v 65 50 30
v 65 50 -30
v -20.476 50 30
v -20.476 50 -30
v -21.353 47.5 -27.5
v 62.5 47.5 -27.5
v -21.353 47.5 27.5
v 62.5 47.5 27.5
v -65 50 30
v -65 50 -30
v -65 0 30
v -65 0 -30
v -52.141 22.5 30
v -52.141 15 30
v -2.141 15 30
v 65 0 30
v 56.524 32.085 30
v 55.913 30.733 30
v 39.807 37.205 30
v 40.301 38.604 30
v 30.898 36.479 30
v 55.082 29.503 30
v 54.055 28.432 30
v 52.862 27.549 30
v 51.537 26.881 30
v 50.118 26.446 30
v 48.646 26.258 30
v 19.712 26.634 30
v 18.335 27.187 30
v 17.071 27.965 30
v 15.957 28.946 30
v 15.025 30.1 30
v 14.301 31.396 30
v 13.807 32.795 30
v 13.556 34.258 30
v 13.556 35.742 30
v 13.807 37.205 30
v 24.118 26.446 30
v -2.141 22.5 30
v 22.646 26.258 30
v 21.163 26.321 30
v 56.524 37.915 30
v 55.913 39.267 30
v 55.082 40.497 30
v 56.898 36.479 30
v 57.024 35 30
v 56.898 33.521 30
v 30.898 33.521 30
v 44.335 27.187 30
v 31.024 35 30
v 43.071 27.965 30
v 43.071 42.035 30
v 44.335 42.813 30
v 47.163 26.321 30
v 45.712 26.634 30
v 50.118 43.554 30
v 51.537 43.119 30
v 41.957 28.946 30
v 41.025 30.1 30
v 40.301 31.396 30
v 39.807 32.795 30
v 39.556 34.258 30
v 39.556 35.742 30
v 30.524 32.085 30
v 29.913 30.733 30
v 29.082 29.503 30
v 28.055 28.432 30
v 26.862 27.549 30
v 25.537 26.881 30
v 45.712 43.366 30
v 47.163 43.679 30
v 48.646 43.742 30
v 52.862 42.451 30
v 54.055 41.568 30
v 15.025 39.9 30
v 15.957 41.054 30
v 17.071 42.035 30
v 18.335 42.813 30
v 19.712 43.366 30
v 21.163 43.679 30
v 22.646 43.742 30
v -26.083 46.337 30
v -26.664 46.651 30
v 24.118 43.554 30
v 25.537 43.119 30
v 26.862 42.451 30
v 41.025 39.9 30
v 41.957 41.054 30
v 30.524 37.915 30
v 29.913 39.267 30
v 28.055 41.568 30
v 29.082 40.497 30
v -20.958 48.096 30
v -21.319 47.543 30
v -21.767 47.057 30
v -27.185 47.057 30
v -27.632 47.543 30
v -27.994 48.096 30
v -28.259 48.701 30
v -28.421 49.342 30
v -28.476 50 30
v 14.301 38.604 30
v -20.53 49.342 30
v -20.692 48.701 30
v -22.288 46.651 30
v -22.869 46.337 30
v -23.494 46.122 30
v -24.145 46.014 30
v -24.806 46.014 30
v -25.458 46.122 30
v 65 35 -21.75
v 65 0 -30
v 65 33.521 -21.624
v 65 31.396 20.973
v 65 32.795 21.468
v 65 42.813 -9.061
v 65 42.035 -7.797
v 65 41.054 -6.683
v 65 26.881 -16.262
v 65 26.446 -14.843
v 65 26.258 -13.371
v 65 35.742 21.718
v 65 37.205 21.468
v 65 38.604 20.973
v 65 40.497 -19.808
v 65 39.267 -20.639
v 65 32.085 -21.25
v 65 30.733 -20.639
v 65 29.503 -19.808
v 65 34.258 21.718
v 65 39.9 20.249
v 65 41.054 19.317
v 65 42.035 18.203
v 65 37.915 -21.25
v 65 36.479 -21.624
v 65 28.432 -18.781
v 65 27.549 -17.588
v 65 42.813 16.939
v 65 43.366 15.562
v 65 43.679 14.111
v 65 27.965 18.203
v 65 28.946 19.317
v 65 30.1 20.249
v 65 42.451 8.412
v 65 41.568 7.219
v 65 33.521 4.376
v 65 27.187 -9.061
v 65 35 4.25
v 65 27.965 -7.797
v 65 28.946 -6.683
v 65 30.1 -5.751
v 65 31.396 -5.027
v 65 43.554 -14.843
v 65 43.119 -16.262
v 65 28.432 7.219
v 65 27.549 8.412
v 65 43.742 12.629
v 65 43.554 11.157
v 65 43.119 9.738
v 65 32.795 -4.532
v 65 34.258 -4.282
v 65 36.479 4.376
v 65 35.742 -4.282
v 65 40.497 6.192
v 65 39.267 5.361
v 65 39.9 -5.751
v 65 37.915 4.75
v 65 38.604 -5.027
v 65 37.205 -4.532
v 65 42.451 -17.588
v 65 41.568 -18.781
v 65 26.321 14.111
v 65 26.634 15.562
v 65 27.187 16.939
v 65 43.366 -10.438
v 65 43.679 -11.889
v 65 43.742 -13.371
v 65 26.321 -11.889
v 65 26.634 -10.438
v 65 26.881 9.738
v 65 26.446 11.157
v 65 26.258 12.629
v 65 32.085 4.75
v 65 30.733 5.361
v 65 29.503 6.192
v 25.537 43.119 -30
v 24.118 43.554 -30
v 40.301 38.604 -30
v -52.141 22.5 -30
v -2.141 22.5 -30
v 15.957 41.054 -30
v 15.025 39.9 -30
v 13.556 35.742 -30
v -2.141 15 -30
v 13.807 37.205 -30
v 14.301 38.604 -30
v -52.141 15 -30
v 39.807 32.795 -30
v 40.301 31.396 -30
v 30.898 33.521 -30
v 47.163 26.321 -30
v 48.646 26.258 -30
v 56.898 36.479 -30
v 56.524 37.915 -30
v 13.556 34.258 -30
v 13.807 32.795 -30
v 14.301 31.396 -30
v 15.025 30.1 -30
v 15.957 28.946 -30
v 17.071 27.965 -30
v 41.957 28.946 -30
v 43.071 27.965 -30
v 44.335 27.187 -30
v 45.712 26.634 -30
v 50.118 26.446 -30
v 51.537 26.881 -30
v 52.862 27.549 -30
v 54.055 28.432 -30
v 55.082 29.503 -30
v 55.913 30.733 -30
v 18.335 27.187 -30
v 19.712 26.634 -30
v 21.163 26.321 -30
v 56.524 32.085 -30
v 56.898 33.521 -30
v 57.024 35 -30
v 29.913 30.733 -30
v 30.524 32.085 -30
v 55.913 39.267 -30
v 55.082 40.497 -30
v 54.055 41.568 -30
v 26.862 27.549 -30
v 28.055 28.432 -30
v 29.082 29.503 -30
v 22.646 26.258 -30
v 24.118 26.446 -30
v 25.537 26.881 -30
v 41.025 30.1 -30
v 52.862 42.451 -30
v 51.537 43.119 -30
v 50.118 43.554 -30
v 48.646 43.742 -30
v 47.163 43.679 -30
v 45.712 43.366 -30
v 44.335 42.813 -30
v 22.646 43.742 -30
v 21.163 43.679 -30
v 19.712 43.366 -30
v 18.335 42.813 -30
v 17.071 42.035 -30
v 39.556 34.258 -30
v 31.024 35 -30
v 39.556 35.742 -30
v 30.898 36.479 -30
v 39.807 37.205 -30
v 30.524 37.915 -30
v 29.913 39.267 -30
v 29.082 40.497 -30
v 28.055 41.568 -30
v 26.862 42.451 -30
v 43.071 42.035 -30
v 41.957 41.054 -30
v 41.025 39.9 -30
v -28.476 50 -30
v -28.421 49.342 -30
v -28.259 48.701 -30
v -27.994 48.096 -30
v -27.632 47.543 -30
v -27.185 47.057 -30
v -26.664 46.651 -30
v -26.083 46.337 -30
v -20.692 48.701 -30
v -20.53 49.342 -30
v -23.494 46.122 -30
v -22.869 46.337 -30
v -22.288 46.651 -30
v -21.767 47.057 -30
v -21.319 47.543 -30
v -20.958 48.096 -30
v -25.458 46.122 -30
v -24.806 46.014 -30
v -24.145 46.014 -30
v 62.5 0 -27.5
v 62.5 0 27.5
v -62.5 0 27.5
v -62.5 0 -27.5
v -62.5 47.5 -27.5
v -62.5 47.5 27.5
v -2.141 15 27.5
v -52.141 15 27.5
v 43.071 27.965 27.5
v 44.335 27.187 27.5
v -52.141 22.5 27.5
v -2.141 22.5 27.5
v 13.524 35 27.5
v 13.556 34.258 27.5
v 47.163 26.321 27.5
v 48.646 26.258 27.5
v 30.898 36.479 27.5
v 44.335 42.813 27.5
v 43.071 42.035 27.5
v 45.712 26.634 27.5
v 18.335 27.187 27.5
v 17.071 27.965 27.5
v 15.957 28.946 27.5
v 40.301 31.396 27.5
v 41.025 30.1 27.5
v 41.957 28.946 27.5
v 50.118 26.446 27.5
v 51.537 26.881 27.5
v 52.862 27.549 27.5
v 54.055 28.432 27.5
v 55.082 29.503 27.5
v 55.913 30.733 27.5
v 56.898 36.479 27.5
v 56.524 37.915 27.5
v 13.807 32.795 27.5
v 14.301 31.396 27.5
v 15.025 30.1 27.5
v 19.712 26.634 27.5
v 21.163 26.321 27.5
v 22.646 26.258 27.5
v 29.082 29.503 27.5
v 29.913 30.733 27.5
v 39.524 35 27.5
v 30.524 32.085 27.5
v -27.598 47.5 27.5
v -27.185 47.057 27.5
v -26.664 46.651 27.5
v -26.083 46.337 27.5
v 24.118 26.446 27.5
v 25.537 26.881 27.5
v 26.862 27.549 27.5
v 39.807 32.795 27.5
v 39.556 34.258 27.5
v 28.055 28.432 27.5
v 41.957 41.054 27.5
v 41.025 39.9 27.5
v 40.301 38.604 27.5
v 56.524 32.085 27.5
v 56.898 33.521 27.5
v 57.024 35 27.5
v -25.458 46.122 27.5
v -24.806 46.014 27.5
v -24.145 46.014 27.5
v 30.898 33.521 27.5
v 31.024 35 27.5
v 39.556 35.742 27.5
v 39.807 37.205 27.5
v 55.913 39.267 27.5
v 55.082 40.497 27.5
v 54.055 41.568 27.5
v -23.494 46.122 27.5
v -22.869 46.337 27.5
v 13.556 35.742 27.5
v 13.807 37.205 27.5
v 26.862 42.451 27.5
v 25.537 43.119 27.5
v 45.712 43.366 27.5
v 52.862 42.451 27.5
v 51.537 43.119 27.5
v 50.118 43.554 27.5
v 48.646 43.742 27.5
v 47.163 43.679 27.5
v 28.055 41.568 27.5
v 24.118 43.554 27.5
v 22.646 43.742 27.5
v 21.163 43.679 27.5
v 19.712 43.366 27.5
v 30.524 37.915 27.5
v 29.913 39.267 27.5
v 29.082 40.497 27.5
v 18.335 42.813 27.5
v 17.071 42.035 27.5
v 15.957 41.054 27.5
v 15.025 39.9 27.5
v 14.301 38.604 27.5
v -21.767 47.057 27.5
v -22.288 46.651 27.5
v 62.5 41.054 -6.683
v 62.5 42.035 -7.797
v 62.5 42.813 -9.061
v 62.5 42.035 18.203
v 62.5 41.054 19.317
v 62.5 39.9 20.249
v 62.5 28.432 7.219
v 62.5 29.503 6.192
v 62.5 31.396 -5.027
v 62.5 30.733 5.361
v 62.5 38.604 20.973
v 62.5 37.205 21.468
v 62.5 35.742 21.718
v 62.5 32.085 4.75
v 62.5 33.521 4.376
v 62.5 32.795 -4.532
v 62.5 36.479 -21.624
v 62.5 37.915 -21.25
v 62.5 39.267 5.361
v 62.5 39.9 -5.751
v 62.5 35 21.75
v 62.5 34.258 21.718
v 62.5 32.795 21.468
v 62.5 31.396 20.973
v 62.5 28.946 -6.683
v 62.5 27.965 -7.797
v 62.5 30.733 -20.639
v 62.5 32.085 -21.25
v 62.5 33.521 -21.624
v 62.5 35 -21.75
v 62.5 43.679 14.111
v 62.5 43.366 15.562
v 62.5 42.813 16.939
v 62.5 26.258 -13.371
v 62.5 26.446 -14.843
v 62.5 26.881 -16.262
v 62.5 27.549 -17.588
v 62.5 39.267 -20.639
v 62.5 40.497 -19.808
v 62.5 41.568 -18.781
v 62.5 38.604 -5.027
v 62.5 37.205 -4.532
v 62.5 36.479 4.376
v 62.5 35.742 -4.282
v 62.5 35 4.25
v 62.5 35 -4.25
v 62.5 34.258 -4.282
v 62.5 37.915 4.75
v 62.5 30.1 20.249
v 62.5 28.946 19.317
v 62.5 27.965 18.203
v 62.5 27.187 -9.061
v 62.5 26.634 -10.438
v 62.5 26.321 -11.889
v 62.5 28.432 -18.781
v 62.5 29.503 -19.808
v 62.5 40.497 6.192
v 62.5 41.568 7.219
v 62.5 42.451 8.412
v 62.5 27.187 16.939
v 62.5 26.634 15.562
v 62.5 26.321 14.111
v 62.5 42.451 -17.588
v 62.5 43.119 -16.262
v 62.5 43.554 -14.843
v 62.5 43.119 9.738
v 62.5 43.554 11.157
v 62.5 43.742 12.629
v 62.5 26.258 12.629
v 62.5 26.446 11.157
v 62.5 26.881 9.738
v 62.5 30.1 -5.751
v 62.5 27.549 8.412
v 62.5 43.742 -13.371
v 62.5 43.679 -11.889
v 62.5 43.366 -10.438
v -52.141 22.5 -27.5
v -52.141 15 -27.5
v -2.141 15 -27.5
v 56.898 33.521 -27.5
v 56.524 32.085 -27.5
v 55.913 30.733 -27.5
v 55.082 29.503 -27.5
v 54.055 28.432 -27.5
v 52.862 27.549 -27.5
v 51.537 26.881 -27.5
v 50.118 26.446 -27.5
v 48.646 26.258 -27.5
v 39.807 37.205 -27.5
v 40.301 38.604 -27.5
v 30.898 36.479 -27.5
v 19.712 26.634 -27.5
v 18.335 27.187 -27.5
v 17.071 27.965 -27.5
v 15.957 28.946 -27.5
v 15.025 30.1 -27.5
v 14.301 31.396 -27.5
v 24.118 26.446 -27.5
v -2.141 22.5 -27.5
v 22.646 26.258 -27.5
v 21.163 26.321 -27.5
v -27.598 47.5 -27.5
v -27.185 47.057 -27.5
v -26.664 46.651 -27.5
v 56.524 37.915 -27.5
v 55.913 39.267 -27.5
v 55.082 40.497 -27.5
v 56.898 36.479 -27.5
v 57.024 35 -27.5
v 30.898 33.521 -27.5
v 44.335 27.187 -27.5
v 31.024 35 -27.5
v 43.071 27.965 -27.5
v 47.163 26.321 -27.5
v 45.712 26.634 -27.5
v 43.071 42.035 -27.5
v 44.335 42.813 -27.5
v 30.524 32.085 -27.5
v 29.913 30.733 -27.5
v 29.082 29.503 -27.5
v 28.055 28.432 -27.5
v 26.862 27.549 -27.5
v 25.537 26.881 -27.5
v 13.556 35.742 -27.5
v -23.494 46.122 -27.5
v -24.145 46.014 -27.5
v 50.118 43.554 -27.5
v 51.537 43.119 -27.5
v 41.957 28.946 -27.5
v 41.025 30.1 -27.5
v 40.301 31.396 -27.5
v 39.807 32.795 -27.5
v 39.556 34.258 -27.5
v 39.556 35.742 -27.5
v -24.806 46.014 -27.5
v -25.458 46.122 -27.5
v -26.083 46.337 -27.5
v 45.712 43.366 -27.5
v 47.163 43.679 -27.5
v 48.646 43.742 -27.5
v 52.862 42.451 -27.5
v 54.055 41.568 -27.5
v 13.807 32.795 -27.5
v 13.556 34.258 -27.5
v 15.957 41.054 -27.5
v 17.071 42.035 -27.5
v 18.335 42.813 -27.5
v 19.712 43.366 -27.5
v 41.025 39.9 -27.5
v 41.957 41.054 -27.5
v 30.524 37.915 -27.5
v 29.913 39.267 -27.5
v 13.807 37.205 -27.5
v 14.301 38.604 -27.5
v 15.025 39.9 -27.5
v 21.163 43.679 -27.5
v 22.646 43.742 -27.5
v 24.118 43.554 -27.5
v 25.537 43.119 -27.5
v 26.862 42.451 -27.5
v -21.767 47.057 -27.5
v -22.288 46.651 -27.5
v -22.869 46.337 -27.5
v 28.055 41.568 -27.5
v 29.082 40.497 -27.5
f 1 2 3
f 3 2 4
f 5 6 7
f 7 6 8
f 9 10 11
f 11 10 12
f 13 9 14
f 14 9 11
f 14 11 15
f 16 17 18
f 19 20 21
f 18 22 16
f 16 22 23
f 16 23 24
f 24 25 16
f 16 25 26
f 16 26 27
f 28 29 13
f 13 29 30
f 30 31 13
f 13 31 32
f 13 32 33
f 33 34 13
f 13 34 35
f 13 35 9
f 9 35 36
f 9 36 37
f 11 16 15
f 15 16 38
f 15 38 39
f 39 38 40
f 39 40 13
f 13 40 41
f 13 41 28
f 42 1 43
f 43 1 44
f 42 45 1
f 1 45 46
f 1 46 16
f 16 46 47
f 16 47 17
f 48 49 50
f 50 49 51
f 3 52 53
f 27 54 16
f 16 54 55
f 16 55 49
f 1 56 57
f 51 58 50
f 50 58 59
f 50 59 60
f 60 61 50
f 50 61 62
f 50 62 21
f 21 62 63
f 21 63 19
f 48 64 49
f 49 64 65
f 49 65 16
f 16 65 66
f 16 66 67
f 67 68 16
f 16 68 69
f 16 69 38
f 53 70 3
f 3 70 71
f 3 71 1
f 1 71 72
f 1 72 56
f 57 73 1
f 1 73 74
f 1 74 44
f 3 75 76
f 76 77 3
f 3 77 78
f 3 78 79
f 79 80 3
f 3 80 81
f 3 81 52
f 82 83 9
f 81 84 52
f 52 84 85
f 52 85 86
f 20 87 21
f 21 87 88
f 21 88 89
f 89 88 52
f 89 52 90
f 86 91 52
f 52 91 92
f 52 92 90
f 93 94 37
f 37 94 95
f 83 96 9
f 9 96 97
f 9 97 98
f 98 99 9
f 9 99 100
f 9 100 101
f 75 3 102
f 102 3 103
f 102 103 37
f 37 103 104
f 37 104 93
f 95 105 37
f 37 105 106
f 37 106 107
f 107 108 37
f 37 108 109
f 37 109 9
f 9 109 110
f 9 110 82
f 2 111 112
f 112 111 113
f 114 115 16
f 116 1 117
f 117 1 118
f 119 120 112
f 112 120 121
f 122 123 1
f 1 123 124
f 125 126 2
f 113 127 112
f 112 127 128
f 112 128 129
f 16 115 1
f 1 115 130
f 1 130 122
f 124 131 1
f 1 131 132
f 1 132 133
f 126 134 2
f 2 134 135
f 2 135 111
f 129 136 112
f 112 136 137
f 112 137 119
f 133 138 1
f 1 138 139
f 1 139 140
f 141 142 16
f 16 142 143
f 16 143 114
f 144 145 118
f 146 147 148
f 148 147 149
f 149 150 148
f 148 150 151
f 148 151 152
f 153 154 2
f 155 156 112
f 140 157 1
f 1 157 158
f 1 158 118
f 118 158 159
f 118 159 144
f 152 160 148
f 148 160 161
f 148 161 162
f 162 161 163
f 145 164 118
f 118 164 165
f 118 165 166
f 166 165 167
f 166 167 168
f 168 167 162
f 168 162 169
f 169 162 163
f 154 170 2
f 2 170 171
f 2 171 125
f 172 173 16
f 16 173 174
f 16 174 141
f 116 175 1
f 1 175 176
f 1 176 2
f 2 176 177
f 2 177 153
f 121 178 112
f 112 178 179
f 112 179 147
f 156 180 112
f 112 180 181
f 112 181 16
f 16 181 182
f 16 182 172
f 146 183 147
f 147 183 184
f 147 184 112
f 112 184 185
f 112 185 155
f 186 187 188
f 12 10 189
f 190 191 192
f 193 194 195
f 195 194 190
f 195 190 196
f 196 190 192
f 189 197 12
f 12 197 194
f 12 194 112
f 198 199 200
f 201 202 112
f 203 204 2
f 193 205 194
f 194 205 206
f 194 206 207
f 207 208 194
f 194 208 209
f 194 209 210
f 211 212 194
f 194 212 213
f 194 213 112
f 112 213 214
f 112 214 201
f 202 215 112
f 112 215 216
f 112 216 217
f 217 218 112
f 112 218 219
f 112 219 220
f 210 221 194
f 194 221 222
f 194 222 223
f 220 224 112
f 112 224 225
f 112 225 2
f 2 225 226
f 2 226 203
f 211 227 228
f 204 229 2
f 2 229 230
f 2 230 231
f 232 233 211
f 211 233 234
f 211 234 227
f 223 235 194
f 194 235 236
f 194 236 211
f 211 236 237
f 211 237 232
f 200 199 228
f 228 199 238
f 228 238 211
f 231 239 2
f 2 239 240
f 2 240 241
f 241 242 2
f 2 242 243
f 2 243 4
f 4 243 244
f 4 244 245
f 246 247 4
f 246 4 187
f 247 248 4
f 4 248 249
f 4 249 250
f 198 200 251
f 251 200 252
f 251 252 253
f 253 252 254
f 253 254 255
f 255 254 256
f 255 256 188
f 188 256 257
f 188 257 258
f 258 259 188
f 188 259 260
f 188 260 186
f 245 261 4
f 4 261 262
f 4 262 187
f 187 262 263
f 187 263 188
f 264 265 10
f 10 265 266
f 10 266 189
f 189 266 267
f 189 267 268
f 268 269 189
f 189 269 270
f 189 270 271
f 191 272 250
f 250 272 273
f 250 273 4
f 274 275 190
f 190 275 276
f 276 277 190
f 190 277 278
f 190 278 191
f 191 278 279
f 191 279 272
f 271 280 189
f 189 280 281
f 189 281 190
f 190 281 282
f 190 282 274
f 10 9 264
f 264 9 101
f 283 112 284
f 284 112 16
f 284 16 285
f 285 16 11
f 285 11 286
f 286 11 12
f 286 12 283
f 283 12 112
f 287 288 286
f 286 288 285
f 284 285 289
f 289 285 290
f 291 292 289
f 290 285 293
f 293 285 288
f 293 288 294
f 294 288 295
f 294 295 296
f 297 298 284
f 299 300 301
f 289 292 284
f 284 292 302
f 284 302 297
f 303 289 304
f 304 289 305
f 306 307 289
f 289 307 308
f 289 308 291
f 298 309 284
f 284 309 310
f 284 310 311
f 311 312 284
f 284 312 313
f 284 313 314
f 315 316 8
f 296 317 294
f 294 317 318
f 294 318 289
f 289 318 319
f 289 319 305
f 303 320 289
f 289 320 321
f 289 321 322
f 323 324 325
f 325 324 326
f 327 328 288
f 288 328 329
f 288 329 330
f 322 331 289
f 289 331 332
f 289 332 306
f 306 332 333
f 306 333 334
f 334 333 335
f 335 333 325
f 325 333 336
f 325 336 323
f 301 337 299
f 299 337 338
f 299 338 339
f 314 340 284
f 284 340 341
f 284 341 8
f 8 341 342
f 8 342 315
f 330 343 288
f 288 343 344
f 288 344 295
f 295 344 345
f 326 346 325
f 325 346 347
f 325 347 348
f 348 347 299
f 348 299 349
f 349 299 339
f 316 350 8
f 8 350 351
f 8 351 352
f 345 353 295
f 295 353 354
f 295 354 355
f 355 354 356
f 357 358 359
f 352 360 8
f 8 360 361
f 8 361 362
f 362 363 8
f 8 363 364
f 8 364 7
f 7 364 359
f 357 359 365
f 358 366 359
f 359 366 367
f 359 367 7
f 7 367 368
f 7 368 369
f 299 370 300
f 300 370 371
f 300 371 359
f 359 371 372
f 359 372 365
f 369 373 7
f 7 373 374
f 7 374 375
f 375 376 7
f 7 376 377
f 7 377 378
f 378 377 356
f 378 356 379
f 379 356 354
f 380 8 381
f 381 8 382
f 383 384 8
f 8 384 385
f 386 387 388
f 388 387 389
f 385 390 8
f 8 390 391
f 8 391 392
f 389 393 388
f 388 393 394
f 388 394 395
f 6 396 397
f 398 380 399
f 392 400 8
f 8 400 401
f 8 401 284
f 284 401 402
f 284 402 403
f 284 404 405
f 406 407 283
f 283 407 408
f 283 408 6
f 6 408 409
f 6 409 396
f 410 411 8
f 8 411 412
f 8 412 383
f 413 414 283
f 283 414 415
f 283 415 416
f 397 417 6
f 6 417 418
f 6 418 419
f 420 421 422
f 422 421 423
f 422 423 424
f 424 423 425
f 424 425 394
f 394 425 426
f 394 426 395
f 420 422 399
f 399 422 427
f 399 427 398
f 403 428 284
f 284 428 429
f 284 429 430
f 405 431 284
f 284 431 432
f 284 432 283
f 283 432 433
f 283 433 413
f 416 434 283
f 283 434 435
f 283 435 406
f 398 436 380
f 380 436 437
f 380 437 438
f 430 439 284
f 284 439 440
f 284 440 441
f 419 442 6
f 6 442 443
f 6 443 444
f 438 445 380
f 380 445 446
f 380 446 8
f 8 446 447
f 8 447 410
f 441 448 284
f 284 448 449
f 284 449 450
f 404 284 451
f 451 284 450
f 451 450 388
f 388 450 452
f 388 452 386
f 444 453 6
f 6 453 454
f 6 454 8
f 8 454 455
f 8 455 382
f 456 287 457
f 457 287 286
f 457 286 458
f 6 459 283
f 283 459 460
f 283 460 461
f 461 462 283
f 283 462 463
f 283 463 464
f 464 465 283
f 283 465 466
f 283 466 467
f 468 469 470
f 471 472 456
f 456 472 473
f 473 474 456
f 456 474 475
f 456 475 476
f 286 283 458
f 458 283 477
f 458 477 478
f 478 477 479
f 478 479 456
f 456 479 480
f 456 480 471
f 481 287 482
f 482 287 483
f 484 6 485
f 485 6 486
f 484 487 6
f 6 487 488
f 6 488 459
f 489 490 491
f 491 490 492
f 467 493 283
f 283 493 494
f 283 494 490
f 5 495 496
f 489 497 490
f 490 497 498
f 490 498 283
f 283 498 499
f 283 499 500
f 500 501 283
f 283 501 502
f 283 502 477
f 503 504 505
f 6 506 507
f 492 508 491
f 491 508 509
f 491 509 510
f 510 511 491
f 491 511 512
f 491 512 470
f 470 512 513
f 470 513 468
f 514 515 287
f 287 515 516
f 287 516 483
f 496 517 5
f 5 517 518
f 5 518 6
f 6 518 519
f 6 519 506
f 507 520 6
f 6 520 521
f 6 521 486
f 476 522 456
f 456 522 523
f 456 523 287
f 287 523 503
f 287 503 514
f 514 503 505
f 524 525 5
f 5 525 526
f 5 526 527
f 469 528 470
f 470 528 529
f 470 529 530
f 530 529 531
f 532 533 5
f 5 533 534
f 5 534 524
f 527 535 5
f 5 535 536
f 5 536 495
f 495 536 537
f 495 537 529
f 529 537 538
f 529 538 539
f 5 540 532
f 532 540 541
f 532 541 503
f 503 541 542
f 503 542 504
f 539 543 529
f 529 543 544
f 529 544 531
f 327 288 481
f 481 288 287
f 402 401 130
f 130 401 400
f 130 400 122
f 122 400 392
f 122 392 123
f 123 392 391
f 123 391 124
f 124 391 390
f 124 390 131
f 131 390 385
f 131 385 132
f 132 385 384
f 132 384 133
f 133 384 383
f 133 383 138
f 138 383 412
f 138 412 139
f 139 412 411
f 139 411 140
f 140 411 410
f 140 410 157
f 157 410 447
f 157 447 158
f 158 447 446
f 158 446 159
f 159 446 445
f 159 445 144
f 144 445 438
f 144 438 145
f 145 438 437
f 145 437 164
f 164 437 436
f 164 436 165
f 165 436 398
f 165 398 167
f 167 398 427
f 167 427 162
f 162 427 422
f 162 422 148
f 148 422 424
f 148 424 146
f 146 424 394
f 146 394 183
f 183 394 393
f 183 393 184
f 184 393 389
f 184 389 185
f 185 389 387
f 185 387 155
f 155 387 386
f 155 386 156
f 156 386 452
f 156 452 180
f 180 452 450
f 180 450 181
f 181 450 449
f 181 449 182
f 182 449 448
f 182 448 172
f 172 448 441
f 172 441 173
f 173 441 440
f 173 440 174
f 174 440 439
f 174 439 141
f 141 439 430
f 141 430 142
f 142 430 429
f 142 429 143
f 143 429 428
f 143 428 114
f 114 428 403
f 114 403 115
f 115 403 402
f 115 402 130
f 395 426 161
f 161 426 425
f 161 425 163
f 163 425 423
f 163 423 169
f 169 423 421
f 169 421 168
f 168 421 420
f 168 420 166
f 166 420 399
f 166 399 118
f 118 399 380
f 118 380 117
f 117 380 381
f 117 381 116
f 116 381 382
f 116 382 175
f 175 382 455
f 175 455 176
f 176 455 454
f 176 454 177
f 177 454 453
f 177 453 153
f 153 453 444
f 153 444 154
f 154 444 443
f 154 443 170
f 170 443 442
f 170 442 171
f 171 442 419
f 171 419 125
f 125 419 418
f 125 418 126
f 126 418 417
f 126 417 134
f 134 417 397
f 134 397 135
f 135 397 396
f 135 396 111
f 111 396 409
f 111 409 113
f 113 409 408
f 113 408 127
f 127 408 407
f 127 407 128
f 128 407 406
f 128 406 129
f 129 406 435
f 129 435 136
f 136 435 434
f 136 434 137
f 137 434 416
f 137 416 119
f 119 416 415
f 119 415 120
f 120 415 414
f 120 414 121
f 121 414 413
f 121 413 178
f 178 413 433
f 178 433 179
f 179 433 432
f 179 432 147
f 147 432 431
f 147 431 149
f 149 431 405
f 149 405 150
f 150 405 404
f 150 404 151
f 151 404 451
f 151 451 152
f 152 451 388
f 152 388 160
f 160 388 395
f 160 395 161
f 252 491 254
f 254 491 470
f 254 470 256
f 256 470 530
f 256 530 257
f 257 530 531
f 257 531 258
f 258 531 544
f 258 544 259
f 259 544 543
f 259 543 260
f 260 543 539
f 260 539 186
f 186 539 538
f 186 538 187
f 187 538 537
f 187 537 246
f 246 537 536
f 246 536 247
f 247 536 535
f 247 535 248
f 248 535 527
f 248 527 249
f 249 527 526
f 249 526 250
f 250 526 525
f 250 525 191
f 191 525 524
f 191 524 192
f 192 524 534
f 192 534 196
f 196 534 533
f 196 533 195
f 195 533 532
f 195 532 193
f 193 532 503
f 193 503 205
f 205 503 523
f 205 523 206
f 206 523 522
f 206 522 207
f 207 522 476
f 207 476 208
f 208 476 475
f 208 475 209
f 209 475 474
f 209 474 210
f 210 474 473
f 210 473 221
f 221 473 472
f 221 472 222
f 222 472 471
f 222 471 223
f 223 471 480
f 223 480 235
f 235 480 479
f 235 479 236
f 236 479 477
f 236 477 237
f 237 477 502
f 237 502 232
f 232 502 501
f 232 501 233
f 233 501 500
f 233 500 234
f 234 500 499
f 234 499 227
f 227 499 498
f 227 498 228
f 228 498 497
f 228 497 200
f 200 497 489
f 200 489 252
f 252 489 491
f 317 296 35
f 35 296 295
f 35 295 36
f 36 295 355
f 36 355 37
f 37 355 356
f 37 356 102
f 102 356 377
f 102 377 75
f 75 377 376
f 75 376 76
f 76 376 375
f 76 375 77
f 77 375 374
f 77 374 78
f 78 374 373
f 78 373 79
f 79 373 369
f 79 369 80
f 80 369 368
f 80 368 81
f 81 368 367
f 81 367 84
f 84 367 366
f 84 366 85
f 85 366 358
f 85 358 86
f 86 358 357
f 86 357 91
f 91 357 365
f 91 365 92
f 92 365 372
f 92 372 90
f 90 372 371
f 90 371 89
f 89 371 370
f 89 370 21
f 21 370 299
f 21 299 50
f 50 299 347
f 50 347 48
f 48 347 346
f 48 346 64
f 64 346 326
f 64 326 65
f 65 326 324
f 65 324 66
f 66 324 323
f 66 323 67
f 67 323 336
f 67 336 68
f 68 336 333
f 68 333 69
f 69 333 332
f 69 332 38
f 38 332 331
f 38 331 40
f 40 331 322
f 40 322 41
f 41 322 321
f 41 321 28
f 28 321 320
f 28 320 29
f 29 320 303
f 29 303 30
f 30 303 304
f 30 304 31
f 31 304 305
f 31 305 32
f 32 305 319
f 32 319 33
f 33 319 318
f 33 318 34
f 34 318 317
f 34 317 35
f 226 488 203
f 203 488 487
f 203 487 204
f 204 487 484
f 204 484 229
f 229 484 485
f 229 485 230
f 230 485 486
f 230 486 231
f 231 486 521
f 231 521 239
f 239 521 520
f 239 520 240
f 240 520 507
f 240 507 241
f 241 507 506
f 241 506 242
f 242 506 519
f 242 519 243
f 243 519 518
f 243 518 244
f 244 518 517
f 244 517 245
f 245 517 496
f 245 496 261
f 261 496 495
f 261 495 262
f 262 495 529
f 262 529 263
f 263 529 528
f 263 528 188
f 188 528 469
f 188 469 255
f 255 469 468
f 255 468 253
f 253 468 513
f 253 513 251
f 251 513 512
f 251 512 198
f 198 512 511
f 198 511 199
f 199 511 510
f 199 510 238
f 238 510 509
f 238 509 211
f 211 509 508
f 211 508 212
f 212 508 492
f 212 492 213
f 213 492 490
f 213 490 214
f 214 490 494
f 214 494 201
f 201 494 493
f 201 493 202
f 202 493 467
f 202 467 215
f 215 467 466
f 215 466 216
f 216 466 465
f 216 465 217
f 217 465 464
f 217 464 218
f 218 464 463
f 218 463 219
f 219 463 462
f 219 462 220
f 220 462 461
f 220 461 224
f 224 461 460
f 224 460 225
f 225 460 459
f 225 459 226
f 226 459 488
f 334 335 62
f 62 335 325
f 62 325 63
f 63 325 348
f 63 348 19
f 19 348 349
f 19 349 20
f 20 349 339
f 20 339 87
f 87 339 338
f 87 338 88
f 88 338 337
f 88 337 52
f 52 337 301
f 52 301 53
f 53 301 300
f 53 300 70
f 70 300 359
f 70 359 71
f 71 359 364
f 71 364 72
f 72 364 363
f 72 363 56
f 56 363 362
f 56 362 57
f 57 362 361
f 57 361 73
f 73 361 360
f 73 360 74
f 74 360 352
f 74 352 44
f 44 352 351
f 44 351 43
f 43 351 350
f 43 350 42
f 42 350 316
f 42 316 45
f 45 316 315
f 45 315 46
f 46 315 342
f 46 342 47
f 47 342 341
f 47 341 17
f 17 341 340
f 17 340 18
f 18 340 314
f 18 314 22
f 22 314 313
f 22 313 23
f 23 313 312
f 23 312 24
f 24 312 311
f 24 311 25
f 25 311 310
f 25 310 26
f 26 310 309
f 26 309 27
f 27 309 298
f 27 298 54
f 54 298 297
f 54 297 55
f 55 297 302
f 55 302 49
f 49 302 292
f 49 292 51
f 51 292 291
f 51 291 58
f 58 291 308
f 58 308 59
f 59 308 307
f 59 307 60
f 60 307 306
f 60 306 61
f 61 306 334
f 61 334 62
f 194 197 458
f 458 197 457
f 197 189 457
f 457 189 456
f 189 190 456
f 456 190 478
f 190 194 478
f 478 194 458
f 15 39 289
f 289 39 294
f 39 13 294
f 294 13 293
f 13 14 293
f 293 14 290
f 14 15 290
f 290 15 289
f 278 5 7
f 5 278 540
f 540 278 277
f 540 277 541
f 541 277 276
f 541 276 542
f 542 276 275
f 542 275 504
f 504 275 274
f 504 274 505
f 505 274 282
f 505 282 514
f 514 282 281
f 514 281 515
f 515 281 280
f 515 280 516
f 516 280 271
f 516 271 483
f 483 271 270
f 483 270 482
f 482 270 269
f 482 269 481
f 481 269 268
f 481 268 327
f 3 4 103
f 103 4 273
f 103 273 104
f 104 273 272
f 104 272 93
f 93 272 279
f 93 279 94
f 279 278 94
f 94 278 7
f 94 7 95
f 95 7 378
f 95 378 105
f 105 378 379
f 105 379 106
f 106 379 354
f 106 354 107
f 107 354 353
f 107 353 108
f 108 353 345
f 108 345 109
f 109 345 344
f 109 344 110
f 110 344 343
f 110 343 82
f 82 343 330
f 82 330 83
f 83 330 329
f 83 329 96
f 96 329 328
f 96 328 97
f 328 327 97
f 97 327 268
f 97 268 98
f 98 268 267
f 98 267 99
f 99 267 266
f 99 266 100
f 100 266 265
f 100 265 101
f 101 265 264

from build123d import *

# Parameters (mm, degrees)
SKETCH1_W           = 130
SKETCH1_H           = 60
BOSS_EXTRUDE2_DEPTH = 50
SHELL1_T            = -2.5
CUT_EXTRUDE1_REACH  = 132
SKETCH2_R           = 8.75
SKETCH3_R           = 8.75
CUT_EXTRUDE2_DEPTH  = 61
SKETCH4_W           = 50
SKETCH4_H           = 7.5
CUT_EXTRUDE3_DEPTH  = 61
CUT_EXTRUDE4_DEPTH  = 61


with BuildPart() as part:
    # Sketch1 → Boss-Extrude2 (new body)
    with BuildSketch(Plane(origin=(0, 0, 0), x_dir=(1, 0, 0), z_dir=(0, 1, 0))):
        Rectangle(SKETCH1_W, SKETCH1_H)
    extrude(amount=BOSS_EXTRUDE2_DEPTH)

    # Shell1
    shell1_openings = [part.faces().sort_by_distance(p)[0] for p in [
        (0, 0, 0),
    ]]
    offset(amount=SHELL1_T, openings=shell1_openings, kind=Kind.INTERSECTION)

    # Sketch2 → Cut-Extrude1 (cut, up to next)
    with BuildSketch(Plane(origin=(65, 0, 0), x_dir=(0, 0, -1), z_dir=(1, 0, 0)), mode=Mode.PRIVATE) as cut_extrude1_sk1:
        with Locations((-13, 35)):
            Circle(SKETCH2_R)
    cut_extrude1_tool1 = extrude(cut_extrude1_sk1.sketch, amount=-CUT_EXTRUDE1_REACH, mode=Mode.PRIVATE) & part.part
    add(cut_extrude1_tool1.solids().sort_by_distance((65, 35, 13))[0], mode=Mode.SUBTRACT)
    # Sketch2 → Cut-Extrude1 (cut, up to next)
    with BuildSketch(Plane(origin=(65, 0, 0), x_dir=(0, 0, -1), z_dir=(1, 0, 0)), mode=Mode.PRIVATE) as cut_extrude1_sk2:
        with BuildLine():
            ThreePointArc((21.75, 35), (13, 43.75), (4.25, 35))
            ThreePointArc((4.25, 35), (13, 26.25), (21.75, 35))
        make_face()
    cut_extrude1_tool2 = extrude(cut_extrude1_sk2.sketch, amount=-CUT_EXTRUDE1_REACH, mode=Mode.PRIVATE) & part.part
    add(cut_extrude1_tool2.solids().sort_by_distance((65, 35, -13))[0], mode=Mode.SUBTRACT)

    # Sketch3 → Cut-Extrude2 (cut, through all)
    with BuildSketch(Plane.XY.offset(30)):
        with Locations((22.274243645, 35)):
            Circle(SKETCH3_R)
        with Locations((48.274243645, 35)):
            Circle(SKETCH3_R)
    extrude(amount=-CUT_EXTRUDE2_DEPTH, mode=Mode.SUBTRACT)

    # Sketch4 → Cut-Extrude3 (cut, through all)
    with BuildSketch(Plane(origin=(0, 0, -30), x_dir=(-1, 0, 0), z_dir=(0, 0, -1))):
        with Locations((27.140672083, 18.75)):
            Rectangle(SKETCH4_W, SKETCH4_H)
    extrude(amount=-CUT_EXTRUDE3_DEPTH, mode=Mode.SUBTRACT)

    # Sketch5 → Cut-Extrude4 (cut, through all)
    with BuildSketch(Plane(origin=(0, 0, -30), x_dir=(-1, 0, 0), z_dir=(0, 0, -1))):
        with BuildLine():
            Line((20.475756355, 50), (28.475756355, 50))
            ThreePointArc((28.475756355, 50), (24.475756355, 46), (20.475756355, 50))
        make_face()
    extrude(amount=-CUT_EXTRUDE4_DEPTH, mode=Mode.SUBTRACT)


solid = part.part
